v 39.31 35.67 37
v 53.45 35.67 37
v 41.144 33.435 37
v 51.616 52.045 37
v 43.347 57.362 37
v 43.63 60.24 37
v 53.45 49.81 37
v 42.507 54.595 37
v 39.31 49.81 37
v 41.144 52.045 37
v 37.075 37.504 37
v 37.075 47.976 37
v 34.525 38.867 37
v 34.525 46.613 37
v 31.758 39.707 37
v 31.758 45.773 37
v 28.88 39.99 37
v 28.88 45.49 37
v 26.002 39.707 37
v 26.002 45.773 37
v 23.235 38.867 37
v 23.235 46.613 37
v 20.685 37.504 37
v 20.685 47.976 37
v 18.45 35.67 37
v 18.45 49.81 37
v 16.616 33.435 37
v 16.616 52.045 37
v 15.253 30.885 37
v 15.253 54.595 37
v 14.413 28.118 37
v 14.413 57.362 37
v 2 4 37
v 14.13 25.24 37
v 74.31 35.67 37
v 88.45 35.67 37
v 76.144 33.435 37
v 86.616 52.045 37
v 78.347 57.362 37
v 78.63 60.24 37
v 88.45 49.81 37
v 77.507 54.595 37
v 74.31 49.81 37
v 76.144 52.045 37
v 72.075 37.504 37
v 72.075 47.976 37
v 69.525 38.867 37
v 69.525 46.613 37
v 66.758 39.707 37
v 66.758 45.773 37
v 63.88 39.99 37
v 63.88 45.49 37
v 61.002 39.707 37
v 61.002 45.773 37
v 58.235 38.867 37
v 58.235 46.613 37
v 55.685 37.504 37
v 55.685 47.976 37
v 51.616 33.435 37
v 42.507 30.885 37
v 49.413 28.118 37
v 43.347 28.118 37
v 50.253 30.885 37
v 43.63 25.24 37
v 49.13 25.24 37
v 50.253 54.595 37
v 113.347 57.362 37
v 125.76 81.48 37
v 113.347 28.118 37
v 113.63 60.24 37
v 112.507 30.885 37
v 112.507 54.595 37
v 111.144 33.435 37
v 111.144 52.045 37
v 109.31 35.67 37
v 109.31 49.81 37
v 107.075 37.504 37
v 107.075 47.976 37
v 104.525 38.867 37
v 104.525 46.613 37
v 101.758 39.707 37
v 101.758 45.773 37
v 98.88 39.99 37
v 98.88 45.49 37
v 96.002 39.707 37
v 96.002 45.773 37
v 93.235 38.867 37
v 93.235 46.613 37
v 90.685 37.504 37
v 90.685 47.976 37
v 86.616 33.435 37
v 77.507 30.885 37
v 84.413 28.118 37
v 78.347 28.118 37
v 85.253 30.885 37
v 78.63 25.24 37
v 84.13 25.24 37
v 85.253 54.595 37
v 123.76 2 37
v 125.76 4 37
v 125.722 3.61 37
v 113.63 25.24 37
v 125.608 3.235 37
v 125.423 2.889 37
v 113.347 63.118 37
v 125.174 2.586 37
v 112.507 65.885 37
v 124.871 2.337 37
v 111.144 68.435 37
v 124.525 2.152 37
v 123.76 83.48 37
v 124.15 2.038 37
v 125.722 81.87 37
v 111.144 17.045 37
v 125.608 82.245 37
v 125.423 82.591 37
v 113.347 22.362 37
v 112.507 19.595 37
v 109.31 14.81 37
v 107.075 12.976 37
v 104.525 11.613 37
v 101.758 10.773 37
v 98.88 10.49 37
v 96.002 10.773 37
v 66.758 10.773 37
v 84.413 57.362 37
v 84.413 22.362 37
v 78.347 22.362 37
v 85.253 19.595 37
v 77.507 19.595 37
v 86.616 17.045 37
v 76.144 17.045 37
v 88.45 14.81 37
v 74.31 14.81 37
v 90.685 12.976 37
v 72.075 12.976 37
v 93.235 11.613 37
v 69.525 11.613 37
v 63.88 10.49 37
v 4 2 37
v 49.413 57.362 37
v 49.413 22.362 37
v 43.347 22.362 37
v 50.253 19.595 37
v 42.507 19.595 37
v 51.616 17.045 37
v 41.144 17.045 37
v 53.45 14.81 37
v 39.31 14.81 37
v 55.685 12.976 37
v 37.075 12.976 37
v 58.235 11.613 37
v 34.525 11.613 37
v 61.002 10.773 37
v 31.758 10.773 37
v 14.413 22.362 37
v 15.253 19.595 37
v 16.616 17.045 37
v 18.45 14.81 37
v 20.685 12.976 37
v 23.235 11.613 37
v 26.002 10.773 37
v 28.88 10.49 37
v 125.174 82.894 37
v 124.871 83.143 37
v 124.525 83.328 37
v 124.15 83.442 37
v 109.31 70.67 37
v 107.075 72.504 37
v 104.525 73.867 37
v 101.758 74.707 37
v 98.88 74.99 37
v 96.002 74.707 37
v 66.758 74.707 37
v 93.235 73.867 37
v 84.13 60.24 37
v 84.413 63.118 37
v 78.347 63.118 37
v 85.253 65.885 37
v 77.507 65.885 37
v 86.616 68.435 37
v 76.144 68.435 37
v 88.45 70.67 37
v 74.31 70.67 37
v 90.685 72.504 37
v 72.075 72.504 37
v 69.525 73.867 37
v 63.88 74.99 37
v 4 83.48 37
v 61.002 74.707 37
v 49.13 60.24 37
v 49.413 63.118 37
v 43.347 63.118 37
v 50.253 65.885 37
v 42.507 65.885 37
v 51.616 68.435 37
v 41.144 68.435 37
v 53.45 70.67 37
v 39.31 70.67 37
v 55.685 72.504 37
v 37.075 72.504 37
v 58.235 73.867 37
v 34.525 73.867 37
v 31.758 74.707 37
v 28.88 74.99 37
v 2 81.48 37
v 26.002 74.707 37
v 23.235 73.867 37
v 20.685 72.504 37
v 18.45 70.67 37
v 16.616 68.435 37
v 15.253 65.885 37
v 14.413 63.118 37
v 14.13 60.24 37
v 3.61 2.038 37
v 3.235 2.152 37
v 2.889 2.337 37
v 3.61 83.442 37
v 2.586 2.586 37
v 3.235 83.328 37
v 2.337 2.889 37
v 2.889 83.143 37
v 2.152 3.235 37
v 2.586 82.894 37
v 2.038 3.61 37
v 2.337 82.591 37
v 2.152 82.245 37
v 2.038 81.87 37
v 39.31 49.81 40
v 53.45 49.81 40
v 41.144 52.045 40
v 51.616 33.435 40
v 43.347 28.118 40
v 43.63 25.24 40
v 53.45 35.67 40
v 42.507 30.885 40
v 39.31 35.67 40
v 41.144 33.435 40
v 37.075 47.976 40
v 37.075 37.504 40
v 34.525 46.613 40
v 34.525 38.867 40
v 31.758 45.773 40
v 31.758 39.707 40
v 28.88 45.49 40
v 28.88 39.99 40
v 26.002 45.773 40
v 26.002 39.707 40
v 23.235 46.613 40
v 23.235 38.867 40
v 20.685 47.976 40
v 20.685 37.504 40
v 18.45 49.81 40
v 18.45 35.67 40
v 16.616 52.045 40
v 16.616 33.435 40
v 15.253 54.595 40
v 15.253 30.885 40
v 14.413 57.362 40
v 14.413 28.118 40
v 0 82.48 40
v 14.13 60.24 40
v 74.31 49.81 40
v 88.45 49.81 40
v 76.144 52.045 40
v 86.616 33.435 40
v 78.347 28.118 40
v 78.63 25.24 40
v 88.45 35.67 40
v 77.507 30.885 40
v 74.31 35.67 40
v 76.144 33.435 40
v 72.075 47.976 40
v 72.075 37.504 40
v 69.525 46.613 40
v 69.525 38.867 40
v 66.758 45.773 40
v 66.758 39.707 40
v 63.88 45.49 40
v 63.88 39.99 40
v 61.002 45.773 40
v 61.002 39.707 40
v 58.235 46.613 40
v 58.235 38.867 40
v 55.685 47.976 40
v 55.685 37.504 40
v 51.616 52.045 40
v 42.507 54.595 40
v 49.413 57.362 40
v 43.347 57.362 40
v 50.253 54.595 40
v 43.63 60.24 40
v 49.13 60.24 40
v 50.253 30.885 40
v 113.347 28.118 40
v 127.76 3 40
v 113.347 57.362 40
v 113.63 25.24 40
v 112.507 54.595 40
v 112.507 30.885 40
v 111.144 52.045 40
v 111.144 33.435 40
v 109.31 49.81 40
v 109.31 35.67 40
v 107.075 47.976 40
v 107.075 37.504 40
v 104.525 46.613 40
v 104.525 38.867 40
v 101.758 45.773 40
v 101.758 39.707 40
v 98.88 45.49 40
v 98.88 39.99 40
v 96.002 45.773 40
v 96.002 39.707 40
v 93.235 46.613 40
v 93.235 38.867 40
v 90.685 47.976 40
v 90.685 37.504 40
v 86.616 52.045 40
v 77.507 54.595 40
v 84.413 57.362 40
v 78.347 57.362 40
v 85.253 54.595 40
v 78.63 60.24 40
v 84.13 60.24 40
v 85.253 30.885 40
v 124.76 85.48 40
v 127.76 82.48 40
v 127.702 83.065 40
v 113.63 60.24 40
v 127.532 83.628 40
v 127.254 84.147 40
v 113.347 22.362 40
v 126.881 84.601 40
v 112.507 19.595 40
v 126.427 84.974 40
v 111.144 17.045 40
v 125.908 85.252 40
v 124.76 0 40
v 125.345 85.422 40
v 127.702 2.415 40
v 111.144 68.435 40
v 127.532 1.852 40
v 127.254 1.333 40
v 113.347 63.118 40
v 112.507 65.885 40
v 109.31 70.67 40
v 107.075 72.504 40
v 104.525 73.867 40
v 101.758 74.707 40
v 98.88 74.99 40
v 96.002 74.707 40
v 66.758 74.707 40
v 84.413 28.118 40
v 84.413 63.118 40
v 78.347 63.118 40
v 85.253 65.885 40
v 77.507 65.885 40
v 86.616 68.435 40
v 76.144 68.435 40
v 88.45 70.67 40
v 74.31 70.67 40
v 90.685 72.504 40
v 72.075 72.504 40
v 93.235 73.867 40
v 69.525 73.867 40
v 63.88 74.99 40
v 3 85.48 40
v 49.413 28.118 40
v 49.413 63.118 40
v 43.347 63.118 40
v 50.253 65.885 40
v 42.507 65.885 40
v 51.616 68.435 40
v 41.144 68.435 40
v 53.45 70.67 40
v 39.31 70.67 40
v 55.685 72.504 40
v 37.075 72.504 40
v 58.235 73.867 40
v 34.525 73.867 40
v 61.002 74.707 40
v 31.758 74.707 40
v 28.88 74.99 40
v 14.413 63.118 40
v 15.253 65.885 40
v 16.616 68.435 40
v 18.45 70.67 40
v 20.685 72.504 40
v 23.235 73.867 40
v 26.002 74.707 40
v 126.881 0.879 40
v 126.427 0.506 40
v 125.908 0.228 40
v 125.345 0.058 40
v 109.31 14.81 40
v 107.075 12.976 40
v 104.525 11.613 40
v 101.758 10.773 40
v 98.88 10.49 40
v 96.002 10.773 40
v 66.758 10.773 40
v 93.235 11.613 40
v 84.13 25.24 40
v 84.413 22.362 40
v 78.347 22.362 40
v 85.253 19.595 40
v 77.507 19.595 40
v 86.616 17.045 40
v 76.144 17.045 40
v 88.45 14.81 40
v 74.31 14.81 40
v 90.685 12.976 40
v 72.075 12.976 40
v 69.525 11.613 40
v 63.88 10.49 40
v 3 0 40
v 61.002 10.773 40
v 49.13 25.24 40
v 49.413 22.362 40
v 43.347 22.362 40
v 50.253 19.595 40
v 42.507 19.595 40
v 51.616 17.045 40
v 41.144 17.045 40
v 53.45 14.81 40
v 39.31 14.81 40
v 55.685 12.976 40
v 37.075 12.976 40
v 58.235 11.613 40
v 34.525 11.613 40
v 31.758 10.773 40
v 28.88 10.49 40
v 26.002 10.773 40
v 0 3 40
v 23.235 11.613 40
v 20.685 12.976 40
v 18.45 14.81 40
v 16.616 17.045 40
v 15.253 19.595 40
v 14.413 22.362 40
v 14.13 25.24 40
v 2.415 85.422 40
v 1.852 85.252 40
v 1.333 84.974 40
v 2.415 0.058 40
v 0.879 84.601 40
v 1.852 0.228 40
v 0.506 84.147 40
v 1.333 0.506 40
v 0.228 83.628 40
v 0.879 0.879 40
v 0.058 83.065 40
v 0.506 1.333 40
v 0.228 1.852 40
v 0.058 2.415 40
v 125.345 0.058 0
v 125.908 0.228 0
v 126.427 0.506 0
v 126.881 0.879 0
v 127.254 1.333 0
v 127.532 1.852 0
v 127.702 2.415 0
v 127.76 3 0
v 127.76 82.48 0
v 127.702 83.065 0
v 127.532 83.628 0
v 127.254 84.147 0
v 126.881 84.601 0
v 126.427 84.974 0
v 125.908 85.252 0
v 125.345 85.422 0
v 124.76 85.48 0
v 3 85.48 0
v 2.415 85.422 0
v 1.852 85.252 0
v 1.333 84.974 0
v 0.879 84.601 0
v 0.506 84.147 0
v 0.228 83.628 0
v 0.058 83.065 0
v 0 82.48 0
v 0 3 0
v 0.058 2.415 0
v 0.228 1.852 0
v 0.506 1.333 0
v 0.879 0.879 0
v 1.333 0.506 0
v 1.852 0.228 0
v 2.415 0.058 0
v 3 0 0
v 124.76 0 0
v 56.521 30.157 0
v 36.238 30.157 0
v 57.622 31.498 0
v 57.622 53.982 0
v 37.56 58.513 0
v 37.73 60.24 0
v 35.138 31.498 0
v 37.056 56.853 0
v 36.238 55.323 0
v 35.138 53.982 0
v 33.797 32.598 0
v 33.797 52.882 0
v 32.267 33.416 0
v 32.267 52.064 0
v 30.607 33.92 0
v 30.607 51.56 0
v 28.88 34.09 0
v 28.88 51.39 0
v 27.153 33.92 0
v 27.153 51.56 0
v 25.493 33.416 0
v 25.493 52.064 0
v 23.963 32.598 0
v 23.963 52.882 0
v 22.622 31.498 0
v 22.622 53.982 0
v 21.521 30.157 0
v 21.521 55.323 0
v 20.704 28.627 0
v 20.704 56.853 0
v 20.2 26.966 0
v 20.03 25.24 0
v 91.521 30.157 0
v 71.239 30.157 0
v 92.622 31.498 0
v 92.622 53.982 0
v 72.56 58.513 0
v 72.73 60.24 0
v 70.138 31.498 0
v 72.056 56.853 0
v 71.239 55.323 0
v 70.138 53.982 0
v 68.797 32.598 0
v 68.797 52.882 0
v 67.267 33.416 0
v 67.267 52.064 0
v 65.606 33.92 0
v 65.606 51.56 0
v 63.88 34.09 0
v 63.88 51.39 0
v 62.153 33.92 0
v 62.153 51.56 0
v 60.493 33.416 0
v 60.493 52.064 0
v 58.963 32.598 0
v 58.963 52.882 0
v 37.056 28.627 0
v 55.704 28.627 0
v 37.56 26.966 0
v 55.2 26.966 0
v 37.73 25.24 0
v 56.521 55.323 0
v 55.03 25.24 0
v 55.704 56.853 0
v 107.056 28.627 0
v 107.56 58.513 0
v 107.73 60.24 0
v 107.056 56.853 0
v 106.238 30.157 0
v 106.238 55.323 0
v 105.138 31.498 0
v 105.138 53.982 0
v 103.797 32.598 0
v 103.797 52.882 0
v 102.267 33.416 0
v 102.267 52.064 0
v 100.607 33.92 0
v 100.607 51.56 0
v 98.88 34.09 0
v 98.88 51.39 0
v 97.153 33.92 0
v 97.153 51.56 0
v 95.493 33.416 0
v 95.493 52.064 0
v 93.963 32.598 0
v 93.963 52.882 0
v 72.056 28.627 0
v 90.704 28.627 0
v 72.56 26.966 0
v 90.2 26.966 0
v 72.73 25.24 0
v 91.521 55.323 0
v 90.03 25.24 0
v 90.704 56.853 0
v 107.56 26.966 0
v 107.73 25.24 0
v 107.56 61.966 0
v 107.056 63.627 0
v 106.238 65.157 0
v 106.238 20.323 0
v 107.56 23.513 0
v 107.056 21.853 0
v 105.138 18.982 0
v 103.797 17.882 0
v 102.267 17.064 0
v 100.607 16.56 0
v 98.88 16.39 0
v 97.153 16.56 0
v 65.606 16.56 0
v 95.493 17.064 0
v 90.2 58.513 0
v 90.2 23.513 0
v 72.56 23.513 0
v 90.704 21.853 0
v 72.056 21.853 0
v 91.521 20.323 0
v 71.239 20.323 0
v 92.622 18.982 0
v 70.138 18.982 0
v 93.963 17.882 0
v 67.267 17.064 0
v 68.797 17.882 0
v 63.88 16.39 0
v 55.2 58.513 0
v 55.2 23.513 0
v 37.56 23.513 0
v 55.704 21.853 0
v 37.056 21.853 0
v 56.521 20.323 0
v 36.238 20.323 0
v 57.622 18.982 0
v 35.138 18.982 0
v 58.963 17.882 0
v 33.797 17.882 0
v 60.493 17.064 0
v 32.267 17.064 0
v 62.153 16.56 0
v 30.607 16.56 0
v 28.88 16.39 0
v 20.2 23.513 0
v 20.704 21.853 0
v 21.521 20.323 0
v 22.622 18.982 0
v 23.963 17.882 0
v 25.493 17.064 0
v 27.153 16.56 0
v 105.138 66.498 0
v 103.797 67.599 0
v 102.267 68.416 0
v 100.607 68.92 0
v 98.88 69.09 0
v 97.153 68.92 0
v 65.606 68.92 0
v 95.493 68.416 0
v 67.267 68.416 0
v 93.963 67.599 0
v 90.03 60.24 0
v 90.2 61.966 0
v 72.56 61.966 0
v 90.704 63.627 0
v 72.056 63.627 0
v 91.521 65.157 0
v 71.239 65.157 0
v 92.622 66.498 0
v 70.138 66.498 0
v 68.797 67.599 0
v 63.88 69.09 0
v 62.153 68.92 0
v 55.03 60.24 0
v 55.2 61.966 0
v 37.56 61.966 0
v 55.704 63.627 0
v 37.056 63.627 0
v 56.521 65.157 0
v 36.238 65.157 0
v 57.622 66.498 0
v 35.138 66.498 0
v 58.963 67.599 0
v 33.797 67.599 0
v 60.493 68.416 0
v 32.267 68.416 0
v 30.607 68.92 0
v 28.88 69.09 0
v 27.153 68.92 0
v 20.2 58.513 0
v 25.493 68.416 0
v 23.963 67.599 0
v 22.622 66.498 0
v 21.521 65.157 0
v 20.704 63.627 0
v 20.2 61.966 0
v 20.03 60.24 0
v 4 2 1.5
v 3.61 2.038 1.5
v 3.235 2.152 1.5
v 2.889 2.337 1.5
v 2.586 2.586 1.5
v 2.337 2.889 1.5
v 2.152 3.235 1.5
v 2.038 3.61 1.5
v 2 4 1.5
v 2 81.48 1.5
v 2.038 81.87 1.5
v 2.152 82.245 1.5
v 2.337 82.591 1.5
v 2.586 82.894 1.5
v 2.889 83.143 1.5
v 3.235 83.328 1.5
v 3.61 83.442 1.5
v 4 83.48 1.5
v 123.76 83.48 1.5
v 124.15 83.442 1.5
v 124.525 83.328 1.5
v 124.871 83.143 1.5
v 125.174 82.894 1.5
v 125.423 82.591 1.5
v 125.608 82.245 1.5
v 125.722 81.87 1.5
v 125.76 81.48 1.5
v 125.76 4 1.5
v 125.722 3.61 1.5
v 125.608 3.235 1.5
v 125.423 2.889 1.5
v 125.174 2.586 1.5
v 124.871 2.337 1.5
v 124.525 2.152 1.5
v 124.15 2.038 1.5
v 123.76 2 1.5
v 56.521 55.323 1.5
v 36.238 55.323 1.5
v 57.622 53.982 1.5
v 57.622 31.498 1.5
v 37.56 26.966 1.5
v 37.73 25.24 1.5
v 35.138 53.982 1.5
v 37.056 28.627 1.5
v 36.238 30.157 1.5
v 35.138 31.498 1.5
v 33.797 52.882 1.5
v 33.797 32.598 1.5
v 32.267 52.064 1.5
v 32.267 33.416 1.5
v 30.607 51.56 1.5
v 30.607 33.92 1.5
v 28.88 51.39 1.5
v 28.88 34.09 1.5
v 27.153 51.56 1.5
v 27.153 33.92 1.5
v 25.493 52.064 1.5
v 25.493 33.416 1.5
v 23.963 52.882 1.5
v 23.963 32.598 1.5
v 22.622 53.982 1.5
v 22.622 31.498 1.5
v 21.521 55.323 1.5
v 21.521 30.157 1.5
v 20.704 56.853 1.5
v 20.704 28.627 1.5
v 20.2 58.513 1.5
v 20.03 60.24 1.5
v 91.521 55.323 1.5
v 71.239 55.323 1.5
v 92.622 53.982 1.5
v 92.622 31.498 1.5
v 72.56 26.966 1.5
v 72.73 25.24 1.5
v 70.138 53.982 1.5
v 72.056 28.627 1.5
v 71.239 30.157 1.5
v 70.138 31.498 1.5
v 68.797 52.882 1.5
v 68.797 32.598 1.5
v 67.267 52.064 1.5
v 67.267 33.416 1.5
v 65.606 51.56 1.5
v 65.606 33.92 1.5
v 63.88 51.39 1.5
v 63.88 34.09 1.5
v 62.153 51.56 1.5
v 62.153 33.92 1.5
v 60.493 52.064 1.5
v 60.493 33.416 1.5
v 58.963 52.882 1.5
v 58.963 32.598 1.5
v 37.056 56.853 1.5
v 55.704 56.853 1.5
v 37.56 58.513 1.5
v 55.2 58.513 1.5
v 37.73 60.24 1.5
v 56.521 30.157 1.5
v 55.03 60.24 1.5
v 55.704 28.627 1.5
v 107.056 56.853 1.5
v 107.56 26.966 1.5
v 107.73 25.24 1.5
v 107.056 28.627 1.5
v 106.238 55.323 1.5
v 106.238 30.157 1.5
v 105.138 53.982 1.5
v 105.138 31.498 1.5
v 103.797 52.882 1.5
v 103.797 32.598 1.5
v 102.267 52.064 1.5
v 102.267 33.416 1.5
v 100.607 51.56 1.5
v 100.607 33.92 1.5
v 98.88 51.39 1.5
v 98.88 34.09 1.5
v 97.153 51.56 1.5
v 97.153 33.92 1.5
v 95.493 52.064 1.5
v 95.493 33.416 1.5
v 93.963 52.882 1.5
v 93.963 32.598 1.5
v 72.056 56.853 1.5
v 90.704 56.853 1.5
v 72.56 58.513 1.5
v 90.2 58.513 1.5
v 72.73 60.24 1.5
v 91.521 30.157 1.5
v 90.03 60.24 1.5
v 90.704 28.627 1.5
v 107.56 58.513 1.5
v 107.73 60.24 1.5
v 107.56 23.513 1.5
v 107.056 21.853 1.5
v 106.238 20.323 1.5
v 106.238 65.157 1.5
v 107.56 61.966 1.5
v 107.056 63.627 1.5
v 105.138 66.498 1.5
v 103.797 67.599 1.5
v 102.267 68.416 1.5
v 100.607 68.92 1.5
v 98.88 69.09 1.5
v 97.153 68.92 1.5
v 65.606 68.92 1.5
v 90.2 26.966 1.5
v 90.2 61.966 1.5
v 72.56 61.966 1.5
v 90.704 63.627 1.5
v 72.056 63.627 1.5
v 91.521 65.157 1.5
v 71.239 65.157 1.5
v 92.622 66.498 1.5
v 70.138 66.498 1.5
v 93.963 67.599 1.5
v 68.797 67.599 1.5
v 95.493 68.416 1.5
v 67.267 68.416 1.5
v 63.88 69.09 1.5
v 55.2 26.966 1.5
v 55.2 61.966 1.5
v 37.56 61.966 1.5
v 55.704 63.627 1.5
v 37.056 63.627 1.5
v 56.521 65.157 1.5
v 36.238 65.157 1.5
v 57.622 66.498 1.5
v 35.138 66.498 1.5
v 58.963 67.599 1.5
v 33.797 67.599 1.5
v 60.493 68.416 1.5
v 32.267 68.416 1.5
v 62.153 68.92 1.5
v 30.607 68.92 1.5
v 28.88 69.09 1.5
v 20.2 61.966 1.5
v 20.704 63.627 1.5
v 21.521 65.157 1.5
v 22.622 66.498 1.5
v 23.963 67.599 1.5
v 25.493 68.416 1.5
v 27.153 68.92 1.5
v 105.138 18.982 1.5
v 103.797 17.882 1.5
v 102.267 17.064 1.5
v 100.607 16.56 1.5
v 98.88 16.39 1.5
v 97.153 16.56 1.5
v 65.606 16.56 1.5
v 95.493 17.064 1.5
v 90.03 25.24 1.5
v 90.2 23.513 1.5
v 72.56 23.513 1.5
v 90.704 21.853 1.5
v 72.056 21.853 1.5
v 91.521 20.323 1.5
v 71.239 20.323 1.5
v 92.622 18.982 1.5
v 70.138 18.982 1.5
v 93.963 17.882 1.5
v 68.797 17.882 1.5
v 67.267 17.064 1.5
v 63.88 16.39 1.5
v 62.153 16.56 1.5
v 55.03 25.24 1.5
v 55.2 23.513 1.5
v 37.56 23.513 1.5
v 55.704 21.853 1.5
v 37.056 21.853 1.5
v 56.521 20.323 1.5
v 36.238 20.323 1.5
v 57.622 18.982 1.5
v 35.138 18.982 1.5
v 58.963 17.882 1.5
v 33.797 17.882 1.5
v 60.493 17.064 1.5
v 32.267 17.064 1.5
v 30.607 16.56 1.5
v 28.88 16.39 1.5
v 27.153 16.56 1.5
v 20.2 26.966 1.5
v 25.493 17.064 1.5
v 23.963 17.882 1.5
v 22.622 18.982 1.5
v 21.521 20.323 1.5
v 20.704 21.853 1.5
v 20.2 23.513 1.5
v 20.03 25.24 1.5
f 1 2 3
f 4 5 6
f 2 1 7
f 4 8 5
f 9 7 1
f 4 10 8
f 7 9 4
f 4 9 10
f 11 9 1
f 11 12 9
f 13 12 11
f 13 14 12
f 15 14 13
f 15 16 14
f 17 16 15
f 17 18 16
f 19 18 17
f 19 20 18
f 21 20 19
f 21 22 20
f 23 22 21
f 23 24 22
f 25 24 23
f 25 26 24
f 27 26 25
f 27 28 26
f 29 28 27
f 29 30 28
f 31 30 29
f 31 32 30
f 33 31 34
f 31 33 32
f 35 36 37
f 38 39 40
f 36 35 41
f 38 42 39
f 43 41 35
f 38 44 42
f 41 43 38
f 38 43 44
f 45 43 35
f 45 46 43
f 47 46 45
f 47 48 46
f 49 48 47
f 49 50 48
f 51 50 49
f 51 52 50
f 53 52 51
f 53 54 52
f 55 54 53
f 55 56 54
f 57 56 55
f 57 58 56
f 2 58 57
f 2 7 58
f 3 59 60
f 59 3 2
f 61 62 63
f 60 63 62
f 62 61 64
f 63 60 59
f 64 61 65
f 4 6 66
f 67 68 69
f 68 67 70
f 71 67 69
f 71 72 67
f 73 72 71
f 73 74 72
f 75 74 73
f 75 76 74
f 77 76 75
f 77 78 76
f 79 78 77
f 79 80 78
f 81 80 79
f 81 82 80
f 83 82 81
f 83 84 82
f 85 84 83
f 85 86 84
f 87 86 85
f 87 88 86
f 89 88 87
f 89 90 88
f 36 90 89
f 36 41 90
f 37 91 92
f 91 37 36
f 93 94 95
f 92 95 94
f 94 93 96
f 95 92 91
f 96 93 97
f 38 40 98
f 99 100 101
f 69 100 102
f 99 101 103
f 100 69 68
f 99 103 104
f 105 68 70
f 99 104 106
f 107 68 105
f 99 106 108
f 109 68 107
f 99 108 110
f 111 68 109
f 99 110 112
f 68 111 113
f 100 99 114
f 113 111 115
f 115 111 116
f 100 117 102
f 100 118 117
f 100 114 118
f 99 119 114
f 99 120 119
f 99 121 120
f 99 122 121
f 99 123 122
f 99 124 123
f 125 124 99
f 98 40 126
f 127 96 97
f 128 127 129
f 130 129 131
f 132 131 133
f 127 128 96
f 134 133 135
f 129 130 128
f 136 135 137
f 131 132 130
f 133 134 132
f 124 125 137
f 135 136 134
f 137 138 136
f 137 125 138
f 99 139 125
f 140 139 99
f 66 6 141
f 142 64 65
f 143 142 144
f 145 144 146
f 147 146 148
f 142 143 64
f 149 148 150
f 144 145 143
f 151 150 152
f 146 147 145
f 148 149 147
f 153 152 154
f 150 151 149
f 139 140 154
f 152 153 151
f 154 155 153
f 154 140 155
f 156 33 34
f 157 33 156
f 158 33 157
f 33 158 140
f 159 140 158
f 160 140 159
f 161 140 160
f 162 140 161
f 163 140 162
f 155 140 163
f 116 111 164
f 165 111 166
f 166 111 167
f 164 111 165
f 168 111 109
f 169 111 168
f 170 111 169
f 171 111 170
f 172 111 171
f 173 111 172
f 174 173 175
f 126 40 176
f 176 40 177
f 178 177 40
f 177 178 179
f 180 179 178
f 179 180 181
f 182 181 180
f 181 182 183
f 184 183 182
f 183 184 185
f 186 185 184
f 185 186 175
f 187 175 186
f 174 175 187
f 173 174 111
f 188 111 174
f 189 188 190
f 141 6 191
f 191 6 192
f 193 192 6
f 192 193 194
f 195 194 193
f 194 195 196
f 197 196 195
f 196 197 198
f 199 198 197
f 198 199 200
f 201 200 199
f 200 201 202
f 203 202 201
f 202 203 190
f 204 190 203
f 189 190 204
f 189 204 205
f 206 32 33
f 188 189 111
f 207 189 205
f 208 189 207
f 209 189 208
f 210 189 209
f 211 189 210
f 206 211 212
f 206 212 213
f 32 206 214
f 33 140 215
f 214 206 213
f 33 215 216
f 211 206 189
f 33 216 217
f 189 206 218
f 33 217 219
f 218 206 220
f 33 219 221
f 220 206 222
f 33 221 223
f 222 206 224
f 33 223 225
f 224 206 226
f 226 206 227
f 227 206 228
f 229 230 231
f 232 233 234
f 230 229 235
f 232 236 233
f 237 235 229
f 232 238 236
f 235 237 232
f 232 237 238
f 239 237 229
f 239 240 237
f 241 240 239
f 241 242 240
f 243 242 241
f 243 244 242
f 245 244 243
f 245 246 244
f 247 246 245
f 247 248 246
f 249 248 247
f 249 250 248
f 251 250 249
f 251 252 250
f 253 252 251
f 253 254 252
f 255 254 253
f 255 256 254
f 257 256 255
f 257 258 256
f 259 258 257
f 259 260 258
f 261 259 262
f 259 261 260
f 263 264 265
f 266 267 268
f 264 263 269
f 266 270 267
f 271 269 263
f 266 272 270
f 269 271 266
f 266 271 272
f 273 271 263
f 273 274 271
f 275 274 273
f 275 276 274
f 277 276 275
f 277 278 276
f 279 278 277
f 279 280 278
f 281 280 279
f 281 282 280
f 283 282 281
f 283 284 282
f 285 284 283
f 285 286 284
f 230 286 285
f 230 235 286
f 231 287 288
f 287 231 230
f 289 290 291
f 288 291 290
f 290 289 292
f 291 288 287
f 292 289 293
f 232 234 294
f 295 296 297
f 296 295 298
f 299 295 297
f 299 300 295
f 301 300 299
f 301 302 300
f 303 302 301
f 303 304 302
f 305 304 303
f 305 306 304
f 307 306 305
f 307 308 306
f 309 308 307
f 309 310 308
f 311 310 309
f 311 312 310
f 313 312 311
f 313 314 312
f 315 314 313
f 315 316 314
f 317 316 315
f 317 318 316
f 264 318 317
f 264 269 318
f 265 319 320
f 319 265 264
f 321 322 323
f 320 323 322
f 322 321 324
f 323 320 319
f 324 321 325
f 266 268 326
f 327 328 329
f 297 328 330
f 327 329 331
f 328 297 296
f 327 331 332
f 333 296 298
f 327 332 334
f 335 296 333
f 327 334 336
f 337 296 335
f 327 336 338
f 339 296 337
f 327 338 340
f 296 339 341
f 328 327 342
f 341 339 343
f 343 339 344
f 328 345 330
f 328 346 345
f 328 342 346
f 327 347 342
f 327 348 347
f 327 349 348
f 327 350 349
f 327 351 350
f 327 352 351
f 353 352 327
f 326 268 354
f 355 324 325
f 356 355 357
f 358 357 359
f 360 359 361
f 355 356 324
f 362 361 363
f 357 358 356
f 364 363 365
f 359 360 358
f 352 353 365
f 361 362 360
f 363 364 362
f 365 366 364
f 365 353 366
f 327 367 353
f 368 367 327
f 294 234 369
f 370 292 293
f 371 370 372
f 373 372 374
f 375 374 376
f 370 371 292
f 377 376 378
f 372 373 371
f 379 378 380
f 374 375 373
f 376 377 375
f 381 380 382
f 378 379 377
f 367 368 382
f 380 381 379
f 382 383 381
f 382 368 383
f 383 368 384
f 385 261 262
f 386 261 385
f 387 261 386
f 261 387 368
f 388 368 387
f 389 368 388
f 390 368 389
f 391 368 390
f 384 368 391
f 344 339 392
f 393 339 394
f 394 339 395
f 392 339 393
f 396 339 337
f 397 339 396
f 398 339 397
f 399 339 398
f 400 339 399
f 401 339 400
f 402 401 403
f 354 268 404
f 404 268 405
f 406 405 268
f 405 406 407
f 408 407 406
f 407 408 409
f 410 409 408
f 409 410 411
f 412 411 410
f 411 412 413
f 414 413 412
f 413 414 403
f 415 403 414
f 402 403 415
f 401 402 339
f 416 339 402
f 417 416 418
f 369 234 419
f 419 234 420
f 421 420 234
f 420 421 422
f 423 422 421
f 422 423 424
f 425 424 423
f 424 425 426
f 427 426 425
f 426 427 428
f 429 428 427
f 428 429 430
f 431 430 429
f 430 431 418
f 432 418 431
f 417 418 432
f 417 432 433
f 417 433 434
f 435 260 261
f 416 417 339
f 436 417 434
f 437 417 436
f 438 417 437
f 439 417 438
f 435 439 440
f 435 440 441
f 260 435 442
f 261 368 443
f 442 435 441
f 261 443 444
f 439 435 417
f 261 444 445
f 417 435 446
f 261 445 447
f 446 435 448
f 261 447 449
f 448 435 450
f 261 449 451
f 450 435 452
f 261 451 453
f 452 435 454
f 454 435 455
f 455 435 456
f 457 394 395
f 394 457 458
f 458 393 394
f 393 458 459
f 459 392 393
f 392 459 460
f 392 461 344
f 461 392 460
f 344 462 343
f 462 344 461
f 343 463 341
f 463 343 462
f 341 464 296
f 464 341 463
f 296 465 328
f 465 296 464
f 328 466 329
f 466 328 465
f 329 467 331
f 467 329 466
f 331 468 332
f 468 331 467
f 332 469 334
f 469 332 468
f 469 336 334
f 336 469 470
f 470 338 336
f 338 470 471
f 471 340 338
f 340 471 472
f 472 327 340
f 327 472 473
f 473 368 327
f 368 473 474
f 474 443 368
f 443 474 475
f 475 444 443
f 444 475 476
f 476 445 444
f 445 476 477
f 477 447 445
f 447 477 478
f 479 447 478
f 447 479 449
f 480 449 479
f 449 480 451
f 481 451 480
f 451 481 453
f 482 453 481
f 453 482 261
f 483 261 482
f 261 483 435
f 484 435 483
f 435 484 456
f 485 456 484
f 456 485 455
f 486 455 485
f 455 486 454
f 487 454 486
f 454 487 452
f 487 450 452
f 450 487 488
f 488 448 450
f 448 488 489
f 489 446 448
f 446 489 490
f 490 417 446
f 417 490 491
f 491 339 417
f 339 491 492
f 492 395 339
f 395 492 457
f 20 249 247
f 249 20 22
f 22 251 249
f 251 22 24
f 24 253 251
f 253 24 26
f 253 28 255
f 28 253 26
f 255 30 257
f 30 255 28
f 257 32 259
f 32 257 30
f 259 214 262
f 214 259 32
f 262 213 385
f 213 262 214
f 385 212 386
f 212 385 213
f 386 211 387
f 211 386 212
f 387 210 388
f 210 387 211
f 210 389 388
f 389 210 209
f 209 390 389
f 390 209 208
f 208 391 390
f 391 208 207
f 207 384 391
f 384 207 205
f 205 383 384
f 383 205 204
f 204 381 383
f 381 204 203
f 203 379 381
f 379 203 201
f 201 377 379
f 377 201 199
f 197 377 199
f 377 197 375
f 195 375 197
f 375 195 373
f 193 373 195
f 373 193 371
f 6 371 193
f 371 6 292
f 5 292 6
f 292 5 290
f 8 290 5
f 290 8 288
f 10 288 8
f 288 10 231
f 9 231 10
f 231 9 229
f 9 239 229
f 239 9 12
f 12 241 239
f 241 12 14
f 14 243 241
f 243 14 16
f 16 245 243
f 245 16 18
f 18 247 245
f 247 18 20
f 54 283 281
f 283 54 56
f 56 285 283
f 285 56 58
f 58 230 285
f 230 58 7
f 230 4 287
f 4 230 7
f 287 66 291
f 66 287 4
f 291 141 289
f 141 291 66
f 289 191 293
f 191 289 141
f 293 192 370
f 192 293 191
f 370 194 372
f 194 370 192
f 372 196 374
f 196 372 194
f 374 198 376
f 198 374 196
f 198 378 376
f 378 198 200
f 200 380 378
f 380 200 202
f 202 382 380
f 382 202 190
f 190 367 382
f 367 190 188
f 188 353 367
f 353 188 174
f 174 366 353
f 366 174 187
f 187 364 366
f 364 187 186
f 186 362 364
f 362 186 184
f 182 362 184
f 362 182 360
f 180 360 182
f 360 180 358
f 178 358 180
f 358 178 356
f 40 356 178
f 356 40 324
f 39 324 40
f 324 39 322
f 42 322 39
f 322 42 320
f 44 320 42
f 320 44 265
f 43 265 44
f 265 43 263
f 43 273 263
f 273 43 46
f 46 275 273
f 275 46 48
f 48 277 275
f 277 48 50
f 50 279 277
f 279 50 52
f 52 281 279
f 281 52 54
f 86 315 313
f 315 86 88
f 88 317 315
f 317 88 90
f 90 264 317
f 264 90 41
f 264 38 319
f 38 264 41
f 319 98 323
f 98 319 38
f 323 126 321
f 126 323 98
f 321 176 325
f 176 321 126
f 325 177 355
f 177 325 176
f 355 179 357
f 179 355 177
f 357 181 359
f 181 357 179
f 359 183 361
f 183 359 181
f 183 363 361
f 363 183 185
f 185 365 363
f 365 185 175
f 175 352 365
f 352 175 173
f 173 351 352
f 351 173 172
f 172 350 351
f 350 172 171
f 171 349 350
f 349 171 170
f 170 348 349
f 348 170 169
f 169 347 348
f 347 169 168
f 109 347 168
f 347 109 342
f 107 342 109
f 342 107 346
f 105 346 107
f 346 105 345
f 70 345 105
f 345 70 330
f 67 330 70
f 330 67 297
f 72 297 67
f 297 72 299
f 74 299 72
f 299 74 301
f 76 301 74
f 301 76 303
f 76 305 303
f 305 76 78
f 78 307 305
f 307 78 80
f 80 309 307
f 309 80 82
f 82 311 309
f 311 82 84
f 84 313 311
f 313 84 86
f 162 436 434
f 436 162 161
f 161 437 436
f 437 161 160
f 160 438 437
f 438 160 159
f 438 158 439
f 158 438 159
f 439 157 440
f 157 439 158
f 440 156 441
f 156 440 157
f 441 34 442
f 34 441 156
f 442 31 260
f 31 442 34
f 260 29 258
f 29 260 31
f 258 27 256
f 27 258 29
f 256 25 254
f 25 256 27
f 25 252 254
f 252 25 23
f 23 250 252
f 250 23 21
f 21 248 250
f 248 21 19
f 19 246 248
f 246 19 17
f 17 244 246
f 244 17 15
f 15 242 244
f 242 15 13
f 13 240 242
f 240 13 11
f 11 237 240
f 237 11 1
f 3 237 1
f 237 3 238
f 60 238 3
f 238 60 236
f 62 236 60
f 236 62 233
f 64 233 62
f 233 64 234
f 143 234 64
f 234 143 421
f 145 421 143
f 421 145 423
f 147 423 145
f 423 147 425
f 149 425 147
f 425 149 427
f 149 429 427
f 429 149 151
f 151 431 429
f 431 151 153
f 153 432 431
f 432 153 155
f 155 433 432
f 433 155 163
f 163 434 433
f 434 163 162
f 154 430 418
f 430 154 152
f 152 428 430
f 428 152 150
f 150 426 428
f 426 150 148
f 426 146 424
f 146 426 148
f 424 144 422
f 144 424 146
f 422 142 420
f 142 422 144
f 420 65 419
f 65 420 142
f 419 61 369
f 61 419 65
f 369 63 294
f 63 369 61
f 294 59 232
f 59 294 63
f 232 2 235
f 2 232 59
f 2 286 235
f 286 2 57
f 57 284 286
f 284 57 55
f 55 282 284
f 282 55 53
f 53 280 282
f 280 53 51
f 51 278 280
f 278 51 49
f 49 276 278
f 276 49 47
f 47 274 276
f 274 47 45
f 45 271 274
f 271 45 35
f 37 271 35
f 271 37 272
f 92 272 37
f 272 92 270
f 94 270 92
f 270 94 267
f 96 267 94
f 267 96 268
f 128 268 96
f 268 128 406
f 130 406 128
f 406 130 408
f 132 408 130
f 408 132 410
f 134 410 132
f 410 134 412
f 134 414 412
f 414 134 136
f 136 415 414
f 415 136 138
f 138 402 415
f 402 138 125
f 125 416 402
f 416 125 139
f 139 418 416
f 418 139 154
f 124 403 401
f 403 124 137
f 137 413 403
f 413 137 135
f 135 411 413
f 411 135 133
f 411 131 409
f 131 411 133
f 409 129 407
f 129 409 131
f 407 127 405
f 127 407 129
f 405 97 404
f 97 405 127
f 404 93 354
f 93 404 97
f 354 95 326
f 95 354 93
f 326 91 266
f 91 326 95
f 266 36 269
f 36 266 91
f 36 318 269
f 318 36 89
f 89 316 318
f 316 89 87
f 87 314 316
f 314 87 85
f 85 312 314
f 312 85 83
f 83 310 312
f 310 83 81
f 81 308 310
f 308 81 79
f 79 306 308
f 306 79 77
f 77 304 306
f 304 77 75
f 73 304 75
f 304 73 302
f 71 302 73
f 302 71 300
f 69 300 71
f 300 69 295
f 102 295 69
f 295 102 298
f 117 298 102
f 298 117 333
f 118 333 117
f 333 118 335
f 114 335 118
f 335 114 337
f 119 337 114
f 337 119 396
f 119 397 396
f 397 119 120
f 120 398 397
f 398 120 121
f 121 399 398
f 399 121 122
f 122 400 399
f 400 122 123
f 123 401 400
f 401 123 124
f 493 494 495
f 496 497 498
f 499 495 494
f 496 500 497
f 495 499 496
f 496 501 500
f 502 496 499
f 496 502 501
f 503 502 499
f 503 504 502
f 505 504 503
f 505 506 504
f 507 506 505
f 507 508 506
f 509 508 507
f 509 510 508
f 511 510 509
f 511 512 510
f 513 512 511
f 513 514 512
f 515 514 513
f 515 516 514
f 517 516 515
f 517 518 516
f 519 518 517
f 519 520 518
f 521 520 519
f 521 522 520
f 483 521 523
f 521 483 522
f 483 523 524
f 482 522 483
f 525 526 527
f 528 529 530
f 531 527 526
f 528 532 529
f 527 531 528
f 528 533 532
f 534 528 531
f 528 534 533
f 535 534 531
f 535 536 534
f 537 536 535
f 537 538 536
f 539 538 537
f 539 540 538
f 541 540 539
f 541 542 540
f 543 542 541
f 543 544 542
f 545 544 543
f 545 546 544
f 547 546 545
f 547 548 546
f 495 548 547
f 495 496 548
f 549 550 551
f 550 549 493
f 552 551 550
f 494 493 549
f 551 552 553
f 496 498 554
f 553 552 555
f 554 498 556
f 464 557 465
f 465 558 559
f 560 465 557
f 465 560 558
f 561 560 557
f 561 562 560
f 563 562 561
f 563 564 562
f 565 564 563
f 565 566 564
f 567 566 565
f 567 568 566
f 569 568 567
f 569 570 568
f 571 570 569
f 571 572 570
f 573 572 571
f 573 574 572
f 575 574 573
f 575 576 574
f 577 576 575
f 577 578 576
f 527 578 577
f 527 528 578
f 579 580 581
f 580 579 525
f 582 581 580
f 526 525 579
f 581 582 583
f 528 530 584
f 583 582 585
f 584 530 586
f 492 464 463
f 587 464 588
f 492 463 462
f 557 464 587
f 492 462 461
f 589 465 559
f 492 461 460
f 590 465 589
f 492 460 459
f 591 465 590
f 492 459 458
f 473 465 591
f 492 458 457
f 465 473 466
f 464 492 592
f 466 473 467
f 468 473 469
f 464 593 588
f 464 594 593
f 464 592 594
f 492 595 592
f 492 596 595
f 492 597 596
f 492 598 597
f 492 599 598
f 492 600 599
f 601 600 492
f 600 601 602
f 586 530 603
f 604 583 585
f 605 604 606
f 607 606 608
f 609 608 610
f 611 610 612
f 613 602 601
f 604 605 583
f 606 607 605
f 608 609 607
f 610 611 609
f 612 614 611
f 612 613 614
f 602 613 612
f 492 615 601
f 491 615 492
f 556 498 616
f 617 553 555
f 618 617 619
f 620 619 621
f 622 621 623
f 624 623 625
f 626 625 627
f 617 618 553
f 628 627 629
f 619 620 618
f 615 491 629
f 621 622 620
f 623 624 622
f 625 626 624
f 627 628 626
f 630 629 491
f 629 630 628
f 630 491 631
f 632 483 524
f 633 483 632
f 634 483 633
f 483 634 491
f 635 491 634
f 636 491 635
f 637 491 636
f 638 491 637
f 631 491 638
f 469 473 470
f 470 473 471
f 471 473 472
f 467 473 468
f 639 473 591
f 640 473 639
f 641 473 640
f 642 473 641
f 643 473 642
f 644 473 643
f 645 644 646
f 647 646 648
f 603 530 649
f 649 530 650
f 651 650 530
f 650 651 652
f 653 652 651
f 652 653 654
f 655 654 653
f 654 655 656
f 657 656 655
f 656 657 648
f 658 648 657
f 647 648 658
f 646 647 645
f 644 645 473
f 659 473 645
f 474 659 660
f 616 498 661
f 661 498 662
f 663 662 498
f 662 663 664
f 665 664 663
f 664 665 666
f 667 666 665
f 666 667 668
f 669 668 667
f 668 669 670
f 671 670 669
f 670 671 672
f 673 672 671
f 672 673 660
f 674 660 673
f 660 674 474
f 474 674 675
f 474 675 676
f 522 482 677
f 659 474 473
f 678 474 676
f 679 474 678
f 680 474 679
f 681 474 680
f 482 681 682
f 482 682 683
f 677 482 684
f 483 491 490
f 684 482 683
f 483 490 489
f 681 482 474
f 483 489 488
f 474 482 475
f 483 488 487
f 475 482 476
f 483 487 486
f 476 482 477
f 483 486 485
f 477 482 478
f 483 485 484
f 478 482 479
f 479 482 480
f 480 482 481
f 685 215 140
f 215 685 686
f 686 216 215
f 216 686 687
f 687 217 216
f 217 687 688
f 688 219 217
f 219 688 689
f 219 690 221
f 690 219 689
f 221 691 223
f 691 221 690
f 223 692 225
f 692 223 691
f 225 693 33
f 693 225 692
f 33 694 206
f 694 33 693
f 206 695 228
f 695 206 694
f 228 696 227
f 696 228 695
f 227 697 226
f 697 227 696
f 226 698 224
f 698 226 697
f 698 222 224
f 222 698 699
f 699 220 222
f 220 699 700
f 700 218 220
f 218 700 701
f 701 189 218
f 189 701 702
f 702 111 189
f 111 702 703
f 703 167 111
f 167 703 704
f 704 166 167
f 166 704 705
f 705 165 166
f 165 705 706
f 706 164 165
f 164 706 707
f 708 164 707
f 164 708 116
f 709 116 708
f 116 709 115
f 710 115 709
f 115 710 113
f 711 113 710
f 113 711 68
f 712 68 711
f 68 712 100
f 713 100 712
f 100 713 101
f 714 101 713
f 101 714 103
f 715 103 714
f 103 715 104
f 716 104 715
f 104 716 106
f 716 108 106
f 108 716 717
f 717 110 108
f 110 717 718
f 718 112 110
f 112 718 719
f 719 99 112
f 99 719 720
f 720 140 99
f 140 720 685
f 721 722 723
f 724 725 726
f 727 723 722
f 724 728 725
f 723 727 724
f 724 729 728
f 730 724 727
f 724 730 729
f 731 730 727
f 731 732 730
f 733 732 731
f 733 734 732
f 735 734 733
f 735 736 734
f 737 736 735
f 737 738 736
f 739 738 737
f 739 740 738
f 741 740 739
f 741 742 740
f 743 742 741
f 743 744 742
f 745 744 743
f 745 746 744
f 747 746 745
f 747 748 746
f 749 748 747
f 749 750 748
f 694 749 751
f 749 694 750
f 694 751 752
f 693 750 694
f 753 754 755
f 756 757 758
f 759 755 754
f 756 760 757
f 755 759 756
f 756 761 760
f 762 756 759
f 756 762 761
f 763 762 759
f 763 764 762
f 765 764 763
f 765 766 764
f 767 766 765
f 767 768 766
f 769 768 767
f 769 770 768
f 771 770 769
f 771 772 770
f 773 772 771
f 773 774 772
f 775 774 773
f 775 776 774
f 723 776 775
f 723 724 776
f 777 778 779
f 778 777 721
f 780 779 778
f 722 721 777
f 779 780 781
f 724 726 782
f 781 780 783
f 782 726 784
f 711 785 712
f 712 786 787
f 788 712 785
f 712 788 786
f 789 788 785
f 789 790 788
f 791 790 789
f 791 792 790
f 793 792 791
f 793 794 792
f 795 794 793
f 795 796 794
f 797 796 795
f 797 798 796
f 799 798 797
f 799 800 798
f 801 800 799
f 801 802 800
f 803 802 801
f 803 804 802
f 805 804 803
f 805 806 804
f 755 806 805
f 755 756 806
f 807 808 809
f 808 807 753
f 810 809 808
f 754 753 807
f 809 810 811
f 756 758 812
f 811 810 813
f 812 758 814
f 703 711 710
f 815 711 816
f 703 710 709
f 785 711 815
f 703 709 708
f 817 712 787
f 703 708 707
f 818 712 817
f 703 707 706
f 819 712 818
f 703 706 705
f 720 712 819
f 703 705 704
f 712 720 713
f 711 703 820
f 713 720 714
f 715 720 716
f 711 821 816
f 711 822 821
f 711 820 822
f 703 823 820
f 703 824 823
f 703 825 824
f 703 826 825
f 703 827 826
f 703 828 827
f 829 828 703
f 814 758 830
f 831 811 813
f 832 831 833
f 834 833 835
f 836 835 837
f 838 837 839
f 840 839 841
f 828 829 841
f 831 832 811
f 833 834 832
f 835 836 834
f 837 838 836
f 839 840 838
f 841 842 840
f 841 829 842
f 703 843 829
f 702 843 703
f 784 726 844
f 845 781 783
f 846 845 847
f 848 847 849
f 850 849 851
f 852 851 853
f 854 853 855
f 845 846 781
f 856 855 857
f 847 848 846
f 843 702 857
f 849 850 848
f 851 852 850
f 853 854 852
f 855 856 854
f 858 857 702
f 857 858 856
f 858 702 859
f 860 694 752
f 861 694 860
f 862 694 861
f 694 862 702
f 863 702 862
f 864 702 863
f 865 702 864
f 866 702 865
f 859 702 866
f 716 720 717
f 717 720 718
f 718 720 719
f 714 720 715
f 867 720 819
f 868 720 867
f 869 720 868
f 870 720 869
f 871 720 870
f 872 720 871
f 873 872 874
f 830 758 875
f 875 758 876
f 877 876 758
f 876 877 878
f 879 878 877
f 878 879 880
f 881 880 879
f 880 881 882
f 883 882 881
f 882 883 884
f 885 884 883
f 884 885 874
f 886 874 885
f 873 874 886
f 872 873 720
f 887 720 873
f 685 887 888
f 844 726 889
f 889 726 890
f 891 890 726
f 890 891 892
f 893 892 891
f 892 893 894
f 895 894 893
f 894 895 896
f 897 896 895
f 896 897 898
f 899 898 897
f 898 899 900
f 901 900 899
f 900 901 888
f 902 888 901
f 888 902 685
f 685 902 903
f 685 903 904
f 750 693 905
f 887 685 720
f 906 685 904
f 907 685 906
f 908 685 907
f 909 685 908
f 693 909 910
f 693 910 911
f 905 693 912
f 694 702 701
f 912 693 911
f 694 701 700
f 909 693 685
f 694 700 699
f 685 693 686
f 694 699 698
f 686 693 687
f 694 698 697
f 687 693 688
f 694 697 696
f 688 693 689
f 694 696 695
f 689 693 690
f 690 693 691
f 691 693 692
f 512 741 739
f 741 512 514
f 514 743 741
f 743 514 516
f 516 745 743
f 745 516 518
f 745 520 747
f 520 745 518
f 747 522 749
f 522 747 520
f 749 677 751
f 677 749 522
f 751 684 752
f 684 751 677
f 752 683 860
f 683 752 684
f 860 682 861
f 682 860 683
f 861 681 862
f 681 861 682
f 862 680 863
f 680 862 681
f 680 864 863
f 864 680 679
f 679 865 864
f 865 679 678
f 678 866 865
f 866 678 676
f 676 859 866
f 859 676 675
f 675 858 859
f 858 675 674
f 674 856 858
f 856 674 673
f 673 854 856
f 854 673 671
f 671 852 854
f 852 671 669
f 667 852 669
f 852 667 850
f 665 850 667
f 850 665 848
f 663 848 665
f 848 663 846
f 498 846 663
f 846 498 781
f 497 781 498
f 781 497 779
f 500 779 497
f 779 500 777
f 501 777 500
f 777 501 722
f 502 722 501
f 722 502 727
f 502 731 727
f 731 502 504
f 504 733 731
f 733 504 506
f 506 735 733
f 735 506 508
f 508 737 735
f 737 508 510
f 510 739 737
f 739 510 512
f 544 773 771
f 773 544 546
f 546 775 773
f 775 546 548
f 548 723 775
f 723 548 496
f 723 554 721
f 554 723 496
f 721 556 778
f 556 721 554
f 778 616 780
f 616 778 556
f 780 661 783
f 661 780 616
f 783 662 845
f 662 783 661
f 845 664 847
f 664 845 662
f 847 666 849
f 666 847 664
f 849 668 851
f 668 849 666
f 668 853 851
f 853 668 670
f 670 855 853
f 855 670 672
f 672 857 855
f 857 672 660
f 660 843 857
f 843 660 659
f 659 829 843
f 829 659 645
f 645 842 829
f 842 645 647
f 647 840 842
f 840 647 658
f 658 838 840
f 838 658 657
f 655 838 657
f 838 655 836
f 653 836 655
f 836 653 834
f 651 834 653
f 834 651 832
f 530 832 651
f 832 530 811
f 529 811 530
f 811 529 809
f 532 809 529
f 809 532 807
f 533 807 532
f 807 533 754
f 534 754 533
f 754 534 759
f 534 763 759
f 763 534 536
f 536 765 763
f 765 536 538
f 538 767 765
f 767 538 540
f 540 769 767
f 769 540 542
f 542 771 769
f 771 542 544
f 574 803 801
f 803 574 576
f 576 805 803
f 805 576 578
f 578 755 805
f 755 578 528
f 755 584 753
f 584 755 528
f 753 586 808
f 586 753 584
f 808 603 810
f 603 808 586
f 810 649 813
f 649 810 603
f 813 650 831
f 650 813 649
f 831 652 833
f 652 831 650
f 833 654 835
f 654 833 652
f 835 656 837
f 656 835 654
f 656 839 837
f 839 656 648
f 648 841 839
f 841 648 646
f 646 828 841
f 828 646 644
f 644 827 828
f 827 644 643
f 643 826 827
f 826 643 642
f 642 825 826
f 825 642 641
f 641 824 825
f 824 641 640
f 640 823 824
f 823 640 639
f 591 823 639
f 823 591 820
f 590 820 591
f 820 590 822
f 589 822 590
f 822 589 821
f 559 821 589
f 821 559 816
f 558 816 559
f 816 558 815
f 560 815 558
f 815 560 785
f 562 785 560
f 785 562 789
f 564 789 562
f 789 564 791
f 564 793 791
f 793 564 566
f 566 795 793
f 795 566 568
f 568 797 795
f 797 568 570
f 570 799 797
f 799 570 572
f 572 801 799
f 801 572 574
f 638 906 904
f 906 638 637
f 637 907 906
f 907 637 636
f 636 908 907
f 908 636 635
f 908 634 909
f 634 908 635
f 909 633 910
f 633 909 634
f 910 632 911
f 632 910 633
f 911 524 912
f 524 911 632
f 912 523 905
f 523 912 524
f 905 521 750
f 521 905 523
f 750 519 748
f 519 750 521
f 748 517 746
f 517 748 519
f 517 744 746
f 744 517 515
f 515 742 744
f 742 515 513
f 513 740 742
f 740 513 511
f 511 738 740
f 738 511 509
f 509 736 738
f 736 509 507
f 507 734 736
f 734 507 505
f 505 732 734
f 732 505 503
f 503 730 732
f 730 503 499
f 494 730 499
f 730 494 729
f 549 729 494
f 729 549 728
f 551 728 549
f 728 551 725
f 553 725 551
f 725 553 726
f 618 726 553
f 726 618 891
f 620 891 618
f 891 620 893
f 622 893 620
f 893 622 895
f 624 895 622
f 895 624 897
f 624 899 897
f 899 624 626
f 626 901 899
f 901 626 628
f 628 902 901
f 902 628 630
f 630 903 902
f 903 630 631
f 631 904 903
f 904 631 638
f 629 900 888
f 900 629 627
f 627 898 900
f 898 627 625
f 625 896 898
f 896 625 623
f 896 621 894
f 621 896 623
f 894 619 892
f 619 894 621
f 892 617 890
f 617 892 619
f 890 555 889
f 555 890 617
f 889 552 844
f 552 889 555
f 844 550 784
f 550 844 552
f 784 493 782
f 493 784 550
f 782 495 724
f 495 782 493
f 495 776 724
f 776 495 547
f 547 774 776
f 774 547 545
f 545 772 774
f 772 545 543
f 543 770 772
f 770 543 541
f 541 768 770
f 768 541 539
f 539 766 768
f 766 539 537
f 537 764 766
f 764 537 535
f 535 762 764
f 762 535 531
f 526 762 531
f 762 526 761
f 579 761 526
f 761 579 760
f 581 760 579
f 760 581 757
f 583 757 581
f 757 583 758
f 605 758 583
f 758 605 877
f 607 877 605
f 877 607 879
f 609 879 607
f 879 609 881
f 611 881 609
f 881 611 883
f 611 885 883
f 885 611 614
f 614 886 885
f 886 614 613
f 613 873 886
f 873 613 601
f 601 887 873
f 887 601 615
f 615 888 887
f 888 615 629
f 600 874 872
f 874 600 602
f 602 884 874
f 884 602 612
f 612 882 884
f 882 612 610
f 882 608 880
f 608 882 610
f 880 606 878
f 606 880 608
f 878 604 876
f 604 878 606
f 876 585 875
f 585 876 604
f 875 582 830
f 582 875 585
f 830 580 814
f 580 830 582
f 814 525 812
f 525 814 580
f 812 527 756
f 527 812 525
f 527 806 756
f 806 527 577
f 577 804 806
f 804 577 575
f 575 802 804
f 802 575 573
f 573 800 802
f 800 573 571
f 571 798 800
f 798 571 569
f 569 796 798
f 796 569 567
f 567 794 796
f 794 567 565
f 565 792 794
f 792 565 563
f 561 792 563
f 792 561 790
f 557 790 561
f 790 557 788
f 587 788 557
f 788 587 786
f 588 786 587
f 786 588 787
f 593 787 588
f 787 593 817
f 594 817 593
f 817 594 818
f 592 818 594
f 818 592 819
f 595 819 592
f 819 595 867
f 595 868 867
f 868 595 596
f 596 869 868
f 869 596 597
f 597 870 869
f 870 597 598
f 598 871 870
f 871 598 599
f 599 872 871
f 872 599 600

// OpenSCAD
// file: labware.scad
// BaeBugs parametric labware library (labware twin), v0.1
// All parts are built as 2D profiles extruded in Z, so remixes render fast.
// Units: mm. SBS footprint per ANSI/SLAS 1-2004: 127.76 x 85.48.
// License: CERN-OHL-W-2.0 unless a part file says otherwise.

SBS_X = 127.76;
SBS_Y = 85.48;
$fn = 32;

// Rounded rectangle profile anchored at the origin.
module rrect(x, y, r = 3) {
    translate([r, r]) offset(r = r) square([x - 2 * r, y - 2 * r]);
}

// Grid of round holes. A1 is the back-left well, matching Opentrons/SBS naming,
// so row 0 sits at y = footprint_y - a1_y.
module hole_grid(rows, cols, pitch, hole_d, a1_x, a1_y, footprint_y) {
    for (r = [0 : rows - 1], c = [0 : cols - 1])
        translate([a1_x + c * pitch, footprint_y - a1_y - r * pitch]) circle(d = hole_d);
}

// Tube or tip rack plate: solid top deck with holes, plus a skirt so it sits in a deck slot.
module sbs_plate(rows = 8, cols = 12, pitch = 9, hole_d = 5.8, height = 20,
                 a1_x = 14.38, a1_y = 11.24, footprint_x = SBS_X, footprint_y = SBS_Y,
                 deck = 3, skirt = 2) {
    // top deck
    translate([0, 0, height - deck]) linear_extrude(deck)
        difference() {
            rrect(footprint_x, footprint_y);
            hole_grid(rows, cols, pitch, hole_d, a1_x, a1_y, footprint_y);
        }
    // skirt wall
    linear_extrude(height - deck)
        difference() {
            rrect(footprint_x, footprint_y);
            translate([skirt, skirt]) rrect(footprint_x - 2 * skirt, footprint_y - 2 * skirt, 2);
        }
    // bottom locator ring (keeps tubes from sliding, 1.5 mm floor with smaller holes)
    linear_extrude(1.5)
        difference() {
            translate([skirt, skirt]) rrect(footprint_x - 2 * skirt, footprint_y - 2 * skirt, 2);
            hole_grid(rows, cols, pitch, hole_d * 0.6, a1_x, a1_y, footprint_y);
        }
}

// Flat grid insert (e.g. 10x10 cryo box insert).
module grid_insert(rows = 10, cols = 10, pitch = 13, hole_d = 12.8, height = 12,
                   a1_x = 8, a1_y = 8, footprint_x = 133, footprint_y = 133) {
    linear_extrude(height)
        difference() {
            rrect(footprint_x, footprint_y, 2);
            hole_grid(rows, cols, pitch, hole_d, a1_x, a1_y, footprint_y);
        }
}

// Open lipped frame: the "folder" frame. Inserts rest on the inner lip.
module frame(footprint_x = SBS_X, footprint_y = SBS_Y, height = 12, wall = 5, lip = 2, lip_z = 2) {
    linear_extrude(height)
        difference() {
            rrect(footprint_x, footprint_y);
            translate([wall, wall]) square([footprint_x - 2 * wall, footprint_y - 2 * wall]);
        }
    linear_extrude(lip_z)
        difference() {
            translate([wall - 0.01, wall - 0.01]) square([footprint_x - 2 * wall + 0.02, footprint_y - 2 * wall + 0.02]);
            translate([wall + lip, wall + lip]) square([footprint_x - 2 * (wall + lip), footprint_y - 2 * (wall + lip)]);
        }
}

// Frame split into rows x cols windows, each with a perforated floor (printed mesh).
module grid_frame(footprint_x = SBS_X, footprint_y = SBS_Y, height = 8, wall = 4, rows = 2, cols = 3,
                  rib = 3, floor = 1.2, mesh_hole = 2, mesh_pitch = 3) {
    ix = footprint_x - 2 * wall;
    iy = footprint_y - 2 * wall;
    cw = (ix - (cols - 1) * rib) / cols;
    ch = (iy - (rows - 1) * rib) / rows;
    // walls and ribs
    linear_extrude(height)
        difference() {
            rrect(footprint_x, footprint_y);
            for (r = [0 : rows - 1], c = [0 : cols - 1])
                translate([wall + c * (cw + rib), wall + r * (ch + rib)]) square([cw, ch]);
        }
    // perforated floor (square holes print cleanly without supports)
    linear_extrude(floor)
        difference() {
            translate([wall, wall]) square([ix, iy]);
            for (r = [0 : rows - 1], c = [0 : cols - 1])
                translate([wall + c * (cw + rib), wall + r * (ch + rib)])
                    for (i = [0 : floor((cw - mesh_pitch) / mesh_pitch)], j = [0 : floor((ch - mesh_pitch) / mesh_pitch)])
                        translate([mesh_pitch * 0.75 + i * mesh_pitch, mesh_pitch * 0.75 + j * mesh_pitch])
                            square(mesh_hole, center = true);
        }
}

// Hexagonal lattice clipped to a rectangle with a solid rim.
module honeycomb(footprint_x = 117, footprint_y = 75, height = 6, cell = 14, wall = 1.6, rim = 2) {
    dx = cell;                 // across-flats pitch
    dy = cell * sqrt(3) / 2;   // row pitch
    linear_extrude(height)
        difference() {
            square([footprint_x, footprint_y]);
            intersection() {
                translate([rim, rim]) square([footprint_x - 2 * rim, footprint_y - 2 * rim]);
                for (j = [0 : ceil(footprint_y / dy)], i = [-1 : ceil(footprint_x / dx)])
                    translate([i * dx + (j % 2) * dx / 2, j * dy])
                        rotate(30) circle(d = (cell - wall) / cos(30), $fn = 6);
            }
        }
}
// main file
// SBS 2x3 rack, 50 mL conicals
// part id: print-conical-50  license: MIT
// labware.scad sha256: 025cbfe59bfb2d32557e6a9d5cc7a1fbf1fc54a5ea617dbfabe5a0ebfc3ffba2
// derived from: obs-conical-50, obs-rack-4way-orange
// Edit the parameters to remix. Catalog dimensions marked est. need calipers before a production run.
use <labware.scad>

sbs_plate(rows = 2, cols = 3, pitch = 35.0, hole_d = 29.5, height = 40.0, a1_x = 28.88, a1_y = 25.24, footprint_x = 127.76, footprint_y = 85.48);
